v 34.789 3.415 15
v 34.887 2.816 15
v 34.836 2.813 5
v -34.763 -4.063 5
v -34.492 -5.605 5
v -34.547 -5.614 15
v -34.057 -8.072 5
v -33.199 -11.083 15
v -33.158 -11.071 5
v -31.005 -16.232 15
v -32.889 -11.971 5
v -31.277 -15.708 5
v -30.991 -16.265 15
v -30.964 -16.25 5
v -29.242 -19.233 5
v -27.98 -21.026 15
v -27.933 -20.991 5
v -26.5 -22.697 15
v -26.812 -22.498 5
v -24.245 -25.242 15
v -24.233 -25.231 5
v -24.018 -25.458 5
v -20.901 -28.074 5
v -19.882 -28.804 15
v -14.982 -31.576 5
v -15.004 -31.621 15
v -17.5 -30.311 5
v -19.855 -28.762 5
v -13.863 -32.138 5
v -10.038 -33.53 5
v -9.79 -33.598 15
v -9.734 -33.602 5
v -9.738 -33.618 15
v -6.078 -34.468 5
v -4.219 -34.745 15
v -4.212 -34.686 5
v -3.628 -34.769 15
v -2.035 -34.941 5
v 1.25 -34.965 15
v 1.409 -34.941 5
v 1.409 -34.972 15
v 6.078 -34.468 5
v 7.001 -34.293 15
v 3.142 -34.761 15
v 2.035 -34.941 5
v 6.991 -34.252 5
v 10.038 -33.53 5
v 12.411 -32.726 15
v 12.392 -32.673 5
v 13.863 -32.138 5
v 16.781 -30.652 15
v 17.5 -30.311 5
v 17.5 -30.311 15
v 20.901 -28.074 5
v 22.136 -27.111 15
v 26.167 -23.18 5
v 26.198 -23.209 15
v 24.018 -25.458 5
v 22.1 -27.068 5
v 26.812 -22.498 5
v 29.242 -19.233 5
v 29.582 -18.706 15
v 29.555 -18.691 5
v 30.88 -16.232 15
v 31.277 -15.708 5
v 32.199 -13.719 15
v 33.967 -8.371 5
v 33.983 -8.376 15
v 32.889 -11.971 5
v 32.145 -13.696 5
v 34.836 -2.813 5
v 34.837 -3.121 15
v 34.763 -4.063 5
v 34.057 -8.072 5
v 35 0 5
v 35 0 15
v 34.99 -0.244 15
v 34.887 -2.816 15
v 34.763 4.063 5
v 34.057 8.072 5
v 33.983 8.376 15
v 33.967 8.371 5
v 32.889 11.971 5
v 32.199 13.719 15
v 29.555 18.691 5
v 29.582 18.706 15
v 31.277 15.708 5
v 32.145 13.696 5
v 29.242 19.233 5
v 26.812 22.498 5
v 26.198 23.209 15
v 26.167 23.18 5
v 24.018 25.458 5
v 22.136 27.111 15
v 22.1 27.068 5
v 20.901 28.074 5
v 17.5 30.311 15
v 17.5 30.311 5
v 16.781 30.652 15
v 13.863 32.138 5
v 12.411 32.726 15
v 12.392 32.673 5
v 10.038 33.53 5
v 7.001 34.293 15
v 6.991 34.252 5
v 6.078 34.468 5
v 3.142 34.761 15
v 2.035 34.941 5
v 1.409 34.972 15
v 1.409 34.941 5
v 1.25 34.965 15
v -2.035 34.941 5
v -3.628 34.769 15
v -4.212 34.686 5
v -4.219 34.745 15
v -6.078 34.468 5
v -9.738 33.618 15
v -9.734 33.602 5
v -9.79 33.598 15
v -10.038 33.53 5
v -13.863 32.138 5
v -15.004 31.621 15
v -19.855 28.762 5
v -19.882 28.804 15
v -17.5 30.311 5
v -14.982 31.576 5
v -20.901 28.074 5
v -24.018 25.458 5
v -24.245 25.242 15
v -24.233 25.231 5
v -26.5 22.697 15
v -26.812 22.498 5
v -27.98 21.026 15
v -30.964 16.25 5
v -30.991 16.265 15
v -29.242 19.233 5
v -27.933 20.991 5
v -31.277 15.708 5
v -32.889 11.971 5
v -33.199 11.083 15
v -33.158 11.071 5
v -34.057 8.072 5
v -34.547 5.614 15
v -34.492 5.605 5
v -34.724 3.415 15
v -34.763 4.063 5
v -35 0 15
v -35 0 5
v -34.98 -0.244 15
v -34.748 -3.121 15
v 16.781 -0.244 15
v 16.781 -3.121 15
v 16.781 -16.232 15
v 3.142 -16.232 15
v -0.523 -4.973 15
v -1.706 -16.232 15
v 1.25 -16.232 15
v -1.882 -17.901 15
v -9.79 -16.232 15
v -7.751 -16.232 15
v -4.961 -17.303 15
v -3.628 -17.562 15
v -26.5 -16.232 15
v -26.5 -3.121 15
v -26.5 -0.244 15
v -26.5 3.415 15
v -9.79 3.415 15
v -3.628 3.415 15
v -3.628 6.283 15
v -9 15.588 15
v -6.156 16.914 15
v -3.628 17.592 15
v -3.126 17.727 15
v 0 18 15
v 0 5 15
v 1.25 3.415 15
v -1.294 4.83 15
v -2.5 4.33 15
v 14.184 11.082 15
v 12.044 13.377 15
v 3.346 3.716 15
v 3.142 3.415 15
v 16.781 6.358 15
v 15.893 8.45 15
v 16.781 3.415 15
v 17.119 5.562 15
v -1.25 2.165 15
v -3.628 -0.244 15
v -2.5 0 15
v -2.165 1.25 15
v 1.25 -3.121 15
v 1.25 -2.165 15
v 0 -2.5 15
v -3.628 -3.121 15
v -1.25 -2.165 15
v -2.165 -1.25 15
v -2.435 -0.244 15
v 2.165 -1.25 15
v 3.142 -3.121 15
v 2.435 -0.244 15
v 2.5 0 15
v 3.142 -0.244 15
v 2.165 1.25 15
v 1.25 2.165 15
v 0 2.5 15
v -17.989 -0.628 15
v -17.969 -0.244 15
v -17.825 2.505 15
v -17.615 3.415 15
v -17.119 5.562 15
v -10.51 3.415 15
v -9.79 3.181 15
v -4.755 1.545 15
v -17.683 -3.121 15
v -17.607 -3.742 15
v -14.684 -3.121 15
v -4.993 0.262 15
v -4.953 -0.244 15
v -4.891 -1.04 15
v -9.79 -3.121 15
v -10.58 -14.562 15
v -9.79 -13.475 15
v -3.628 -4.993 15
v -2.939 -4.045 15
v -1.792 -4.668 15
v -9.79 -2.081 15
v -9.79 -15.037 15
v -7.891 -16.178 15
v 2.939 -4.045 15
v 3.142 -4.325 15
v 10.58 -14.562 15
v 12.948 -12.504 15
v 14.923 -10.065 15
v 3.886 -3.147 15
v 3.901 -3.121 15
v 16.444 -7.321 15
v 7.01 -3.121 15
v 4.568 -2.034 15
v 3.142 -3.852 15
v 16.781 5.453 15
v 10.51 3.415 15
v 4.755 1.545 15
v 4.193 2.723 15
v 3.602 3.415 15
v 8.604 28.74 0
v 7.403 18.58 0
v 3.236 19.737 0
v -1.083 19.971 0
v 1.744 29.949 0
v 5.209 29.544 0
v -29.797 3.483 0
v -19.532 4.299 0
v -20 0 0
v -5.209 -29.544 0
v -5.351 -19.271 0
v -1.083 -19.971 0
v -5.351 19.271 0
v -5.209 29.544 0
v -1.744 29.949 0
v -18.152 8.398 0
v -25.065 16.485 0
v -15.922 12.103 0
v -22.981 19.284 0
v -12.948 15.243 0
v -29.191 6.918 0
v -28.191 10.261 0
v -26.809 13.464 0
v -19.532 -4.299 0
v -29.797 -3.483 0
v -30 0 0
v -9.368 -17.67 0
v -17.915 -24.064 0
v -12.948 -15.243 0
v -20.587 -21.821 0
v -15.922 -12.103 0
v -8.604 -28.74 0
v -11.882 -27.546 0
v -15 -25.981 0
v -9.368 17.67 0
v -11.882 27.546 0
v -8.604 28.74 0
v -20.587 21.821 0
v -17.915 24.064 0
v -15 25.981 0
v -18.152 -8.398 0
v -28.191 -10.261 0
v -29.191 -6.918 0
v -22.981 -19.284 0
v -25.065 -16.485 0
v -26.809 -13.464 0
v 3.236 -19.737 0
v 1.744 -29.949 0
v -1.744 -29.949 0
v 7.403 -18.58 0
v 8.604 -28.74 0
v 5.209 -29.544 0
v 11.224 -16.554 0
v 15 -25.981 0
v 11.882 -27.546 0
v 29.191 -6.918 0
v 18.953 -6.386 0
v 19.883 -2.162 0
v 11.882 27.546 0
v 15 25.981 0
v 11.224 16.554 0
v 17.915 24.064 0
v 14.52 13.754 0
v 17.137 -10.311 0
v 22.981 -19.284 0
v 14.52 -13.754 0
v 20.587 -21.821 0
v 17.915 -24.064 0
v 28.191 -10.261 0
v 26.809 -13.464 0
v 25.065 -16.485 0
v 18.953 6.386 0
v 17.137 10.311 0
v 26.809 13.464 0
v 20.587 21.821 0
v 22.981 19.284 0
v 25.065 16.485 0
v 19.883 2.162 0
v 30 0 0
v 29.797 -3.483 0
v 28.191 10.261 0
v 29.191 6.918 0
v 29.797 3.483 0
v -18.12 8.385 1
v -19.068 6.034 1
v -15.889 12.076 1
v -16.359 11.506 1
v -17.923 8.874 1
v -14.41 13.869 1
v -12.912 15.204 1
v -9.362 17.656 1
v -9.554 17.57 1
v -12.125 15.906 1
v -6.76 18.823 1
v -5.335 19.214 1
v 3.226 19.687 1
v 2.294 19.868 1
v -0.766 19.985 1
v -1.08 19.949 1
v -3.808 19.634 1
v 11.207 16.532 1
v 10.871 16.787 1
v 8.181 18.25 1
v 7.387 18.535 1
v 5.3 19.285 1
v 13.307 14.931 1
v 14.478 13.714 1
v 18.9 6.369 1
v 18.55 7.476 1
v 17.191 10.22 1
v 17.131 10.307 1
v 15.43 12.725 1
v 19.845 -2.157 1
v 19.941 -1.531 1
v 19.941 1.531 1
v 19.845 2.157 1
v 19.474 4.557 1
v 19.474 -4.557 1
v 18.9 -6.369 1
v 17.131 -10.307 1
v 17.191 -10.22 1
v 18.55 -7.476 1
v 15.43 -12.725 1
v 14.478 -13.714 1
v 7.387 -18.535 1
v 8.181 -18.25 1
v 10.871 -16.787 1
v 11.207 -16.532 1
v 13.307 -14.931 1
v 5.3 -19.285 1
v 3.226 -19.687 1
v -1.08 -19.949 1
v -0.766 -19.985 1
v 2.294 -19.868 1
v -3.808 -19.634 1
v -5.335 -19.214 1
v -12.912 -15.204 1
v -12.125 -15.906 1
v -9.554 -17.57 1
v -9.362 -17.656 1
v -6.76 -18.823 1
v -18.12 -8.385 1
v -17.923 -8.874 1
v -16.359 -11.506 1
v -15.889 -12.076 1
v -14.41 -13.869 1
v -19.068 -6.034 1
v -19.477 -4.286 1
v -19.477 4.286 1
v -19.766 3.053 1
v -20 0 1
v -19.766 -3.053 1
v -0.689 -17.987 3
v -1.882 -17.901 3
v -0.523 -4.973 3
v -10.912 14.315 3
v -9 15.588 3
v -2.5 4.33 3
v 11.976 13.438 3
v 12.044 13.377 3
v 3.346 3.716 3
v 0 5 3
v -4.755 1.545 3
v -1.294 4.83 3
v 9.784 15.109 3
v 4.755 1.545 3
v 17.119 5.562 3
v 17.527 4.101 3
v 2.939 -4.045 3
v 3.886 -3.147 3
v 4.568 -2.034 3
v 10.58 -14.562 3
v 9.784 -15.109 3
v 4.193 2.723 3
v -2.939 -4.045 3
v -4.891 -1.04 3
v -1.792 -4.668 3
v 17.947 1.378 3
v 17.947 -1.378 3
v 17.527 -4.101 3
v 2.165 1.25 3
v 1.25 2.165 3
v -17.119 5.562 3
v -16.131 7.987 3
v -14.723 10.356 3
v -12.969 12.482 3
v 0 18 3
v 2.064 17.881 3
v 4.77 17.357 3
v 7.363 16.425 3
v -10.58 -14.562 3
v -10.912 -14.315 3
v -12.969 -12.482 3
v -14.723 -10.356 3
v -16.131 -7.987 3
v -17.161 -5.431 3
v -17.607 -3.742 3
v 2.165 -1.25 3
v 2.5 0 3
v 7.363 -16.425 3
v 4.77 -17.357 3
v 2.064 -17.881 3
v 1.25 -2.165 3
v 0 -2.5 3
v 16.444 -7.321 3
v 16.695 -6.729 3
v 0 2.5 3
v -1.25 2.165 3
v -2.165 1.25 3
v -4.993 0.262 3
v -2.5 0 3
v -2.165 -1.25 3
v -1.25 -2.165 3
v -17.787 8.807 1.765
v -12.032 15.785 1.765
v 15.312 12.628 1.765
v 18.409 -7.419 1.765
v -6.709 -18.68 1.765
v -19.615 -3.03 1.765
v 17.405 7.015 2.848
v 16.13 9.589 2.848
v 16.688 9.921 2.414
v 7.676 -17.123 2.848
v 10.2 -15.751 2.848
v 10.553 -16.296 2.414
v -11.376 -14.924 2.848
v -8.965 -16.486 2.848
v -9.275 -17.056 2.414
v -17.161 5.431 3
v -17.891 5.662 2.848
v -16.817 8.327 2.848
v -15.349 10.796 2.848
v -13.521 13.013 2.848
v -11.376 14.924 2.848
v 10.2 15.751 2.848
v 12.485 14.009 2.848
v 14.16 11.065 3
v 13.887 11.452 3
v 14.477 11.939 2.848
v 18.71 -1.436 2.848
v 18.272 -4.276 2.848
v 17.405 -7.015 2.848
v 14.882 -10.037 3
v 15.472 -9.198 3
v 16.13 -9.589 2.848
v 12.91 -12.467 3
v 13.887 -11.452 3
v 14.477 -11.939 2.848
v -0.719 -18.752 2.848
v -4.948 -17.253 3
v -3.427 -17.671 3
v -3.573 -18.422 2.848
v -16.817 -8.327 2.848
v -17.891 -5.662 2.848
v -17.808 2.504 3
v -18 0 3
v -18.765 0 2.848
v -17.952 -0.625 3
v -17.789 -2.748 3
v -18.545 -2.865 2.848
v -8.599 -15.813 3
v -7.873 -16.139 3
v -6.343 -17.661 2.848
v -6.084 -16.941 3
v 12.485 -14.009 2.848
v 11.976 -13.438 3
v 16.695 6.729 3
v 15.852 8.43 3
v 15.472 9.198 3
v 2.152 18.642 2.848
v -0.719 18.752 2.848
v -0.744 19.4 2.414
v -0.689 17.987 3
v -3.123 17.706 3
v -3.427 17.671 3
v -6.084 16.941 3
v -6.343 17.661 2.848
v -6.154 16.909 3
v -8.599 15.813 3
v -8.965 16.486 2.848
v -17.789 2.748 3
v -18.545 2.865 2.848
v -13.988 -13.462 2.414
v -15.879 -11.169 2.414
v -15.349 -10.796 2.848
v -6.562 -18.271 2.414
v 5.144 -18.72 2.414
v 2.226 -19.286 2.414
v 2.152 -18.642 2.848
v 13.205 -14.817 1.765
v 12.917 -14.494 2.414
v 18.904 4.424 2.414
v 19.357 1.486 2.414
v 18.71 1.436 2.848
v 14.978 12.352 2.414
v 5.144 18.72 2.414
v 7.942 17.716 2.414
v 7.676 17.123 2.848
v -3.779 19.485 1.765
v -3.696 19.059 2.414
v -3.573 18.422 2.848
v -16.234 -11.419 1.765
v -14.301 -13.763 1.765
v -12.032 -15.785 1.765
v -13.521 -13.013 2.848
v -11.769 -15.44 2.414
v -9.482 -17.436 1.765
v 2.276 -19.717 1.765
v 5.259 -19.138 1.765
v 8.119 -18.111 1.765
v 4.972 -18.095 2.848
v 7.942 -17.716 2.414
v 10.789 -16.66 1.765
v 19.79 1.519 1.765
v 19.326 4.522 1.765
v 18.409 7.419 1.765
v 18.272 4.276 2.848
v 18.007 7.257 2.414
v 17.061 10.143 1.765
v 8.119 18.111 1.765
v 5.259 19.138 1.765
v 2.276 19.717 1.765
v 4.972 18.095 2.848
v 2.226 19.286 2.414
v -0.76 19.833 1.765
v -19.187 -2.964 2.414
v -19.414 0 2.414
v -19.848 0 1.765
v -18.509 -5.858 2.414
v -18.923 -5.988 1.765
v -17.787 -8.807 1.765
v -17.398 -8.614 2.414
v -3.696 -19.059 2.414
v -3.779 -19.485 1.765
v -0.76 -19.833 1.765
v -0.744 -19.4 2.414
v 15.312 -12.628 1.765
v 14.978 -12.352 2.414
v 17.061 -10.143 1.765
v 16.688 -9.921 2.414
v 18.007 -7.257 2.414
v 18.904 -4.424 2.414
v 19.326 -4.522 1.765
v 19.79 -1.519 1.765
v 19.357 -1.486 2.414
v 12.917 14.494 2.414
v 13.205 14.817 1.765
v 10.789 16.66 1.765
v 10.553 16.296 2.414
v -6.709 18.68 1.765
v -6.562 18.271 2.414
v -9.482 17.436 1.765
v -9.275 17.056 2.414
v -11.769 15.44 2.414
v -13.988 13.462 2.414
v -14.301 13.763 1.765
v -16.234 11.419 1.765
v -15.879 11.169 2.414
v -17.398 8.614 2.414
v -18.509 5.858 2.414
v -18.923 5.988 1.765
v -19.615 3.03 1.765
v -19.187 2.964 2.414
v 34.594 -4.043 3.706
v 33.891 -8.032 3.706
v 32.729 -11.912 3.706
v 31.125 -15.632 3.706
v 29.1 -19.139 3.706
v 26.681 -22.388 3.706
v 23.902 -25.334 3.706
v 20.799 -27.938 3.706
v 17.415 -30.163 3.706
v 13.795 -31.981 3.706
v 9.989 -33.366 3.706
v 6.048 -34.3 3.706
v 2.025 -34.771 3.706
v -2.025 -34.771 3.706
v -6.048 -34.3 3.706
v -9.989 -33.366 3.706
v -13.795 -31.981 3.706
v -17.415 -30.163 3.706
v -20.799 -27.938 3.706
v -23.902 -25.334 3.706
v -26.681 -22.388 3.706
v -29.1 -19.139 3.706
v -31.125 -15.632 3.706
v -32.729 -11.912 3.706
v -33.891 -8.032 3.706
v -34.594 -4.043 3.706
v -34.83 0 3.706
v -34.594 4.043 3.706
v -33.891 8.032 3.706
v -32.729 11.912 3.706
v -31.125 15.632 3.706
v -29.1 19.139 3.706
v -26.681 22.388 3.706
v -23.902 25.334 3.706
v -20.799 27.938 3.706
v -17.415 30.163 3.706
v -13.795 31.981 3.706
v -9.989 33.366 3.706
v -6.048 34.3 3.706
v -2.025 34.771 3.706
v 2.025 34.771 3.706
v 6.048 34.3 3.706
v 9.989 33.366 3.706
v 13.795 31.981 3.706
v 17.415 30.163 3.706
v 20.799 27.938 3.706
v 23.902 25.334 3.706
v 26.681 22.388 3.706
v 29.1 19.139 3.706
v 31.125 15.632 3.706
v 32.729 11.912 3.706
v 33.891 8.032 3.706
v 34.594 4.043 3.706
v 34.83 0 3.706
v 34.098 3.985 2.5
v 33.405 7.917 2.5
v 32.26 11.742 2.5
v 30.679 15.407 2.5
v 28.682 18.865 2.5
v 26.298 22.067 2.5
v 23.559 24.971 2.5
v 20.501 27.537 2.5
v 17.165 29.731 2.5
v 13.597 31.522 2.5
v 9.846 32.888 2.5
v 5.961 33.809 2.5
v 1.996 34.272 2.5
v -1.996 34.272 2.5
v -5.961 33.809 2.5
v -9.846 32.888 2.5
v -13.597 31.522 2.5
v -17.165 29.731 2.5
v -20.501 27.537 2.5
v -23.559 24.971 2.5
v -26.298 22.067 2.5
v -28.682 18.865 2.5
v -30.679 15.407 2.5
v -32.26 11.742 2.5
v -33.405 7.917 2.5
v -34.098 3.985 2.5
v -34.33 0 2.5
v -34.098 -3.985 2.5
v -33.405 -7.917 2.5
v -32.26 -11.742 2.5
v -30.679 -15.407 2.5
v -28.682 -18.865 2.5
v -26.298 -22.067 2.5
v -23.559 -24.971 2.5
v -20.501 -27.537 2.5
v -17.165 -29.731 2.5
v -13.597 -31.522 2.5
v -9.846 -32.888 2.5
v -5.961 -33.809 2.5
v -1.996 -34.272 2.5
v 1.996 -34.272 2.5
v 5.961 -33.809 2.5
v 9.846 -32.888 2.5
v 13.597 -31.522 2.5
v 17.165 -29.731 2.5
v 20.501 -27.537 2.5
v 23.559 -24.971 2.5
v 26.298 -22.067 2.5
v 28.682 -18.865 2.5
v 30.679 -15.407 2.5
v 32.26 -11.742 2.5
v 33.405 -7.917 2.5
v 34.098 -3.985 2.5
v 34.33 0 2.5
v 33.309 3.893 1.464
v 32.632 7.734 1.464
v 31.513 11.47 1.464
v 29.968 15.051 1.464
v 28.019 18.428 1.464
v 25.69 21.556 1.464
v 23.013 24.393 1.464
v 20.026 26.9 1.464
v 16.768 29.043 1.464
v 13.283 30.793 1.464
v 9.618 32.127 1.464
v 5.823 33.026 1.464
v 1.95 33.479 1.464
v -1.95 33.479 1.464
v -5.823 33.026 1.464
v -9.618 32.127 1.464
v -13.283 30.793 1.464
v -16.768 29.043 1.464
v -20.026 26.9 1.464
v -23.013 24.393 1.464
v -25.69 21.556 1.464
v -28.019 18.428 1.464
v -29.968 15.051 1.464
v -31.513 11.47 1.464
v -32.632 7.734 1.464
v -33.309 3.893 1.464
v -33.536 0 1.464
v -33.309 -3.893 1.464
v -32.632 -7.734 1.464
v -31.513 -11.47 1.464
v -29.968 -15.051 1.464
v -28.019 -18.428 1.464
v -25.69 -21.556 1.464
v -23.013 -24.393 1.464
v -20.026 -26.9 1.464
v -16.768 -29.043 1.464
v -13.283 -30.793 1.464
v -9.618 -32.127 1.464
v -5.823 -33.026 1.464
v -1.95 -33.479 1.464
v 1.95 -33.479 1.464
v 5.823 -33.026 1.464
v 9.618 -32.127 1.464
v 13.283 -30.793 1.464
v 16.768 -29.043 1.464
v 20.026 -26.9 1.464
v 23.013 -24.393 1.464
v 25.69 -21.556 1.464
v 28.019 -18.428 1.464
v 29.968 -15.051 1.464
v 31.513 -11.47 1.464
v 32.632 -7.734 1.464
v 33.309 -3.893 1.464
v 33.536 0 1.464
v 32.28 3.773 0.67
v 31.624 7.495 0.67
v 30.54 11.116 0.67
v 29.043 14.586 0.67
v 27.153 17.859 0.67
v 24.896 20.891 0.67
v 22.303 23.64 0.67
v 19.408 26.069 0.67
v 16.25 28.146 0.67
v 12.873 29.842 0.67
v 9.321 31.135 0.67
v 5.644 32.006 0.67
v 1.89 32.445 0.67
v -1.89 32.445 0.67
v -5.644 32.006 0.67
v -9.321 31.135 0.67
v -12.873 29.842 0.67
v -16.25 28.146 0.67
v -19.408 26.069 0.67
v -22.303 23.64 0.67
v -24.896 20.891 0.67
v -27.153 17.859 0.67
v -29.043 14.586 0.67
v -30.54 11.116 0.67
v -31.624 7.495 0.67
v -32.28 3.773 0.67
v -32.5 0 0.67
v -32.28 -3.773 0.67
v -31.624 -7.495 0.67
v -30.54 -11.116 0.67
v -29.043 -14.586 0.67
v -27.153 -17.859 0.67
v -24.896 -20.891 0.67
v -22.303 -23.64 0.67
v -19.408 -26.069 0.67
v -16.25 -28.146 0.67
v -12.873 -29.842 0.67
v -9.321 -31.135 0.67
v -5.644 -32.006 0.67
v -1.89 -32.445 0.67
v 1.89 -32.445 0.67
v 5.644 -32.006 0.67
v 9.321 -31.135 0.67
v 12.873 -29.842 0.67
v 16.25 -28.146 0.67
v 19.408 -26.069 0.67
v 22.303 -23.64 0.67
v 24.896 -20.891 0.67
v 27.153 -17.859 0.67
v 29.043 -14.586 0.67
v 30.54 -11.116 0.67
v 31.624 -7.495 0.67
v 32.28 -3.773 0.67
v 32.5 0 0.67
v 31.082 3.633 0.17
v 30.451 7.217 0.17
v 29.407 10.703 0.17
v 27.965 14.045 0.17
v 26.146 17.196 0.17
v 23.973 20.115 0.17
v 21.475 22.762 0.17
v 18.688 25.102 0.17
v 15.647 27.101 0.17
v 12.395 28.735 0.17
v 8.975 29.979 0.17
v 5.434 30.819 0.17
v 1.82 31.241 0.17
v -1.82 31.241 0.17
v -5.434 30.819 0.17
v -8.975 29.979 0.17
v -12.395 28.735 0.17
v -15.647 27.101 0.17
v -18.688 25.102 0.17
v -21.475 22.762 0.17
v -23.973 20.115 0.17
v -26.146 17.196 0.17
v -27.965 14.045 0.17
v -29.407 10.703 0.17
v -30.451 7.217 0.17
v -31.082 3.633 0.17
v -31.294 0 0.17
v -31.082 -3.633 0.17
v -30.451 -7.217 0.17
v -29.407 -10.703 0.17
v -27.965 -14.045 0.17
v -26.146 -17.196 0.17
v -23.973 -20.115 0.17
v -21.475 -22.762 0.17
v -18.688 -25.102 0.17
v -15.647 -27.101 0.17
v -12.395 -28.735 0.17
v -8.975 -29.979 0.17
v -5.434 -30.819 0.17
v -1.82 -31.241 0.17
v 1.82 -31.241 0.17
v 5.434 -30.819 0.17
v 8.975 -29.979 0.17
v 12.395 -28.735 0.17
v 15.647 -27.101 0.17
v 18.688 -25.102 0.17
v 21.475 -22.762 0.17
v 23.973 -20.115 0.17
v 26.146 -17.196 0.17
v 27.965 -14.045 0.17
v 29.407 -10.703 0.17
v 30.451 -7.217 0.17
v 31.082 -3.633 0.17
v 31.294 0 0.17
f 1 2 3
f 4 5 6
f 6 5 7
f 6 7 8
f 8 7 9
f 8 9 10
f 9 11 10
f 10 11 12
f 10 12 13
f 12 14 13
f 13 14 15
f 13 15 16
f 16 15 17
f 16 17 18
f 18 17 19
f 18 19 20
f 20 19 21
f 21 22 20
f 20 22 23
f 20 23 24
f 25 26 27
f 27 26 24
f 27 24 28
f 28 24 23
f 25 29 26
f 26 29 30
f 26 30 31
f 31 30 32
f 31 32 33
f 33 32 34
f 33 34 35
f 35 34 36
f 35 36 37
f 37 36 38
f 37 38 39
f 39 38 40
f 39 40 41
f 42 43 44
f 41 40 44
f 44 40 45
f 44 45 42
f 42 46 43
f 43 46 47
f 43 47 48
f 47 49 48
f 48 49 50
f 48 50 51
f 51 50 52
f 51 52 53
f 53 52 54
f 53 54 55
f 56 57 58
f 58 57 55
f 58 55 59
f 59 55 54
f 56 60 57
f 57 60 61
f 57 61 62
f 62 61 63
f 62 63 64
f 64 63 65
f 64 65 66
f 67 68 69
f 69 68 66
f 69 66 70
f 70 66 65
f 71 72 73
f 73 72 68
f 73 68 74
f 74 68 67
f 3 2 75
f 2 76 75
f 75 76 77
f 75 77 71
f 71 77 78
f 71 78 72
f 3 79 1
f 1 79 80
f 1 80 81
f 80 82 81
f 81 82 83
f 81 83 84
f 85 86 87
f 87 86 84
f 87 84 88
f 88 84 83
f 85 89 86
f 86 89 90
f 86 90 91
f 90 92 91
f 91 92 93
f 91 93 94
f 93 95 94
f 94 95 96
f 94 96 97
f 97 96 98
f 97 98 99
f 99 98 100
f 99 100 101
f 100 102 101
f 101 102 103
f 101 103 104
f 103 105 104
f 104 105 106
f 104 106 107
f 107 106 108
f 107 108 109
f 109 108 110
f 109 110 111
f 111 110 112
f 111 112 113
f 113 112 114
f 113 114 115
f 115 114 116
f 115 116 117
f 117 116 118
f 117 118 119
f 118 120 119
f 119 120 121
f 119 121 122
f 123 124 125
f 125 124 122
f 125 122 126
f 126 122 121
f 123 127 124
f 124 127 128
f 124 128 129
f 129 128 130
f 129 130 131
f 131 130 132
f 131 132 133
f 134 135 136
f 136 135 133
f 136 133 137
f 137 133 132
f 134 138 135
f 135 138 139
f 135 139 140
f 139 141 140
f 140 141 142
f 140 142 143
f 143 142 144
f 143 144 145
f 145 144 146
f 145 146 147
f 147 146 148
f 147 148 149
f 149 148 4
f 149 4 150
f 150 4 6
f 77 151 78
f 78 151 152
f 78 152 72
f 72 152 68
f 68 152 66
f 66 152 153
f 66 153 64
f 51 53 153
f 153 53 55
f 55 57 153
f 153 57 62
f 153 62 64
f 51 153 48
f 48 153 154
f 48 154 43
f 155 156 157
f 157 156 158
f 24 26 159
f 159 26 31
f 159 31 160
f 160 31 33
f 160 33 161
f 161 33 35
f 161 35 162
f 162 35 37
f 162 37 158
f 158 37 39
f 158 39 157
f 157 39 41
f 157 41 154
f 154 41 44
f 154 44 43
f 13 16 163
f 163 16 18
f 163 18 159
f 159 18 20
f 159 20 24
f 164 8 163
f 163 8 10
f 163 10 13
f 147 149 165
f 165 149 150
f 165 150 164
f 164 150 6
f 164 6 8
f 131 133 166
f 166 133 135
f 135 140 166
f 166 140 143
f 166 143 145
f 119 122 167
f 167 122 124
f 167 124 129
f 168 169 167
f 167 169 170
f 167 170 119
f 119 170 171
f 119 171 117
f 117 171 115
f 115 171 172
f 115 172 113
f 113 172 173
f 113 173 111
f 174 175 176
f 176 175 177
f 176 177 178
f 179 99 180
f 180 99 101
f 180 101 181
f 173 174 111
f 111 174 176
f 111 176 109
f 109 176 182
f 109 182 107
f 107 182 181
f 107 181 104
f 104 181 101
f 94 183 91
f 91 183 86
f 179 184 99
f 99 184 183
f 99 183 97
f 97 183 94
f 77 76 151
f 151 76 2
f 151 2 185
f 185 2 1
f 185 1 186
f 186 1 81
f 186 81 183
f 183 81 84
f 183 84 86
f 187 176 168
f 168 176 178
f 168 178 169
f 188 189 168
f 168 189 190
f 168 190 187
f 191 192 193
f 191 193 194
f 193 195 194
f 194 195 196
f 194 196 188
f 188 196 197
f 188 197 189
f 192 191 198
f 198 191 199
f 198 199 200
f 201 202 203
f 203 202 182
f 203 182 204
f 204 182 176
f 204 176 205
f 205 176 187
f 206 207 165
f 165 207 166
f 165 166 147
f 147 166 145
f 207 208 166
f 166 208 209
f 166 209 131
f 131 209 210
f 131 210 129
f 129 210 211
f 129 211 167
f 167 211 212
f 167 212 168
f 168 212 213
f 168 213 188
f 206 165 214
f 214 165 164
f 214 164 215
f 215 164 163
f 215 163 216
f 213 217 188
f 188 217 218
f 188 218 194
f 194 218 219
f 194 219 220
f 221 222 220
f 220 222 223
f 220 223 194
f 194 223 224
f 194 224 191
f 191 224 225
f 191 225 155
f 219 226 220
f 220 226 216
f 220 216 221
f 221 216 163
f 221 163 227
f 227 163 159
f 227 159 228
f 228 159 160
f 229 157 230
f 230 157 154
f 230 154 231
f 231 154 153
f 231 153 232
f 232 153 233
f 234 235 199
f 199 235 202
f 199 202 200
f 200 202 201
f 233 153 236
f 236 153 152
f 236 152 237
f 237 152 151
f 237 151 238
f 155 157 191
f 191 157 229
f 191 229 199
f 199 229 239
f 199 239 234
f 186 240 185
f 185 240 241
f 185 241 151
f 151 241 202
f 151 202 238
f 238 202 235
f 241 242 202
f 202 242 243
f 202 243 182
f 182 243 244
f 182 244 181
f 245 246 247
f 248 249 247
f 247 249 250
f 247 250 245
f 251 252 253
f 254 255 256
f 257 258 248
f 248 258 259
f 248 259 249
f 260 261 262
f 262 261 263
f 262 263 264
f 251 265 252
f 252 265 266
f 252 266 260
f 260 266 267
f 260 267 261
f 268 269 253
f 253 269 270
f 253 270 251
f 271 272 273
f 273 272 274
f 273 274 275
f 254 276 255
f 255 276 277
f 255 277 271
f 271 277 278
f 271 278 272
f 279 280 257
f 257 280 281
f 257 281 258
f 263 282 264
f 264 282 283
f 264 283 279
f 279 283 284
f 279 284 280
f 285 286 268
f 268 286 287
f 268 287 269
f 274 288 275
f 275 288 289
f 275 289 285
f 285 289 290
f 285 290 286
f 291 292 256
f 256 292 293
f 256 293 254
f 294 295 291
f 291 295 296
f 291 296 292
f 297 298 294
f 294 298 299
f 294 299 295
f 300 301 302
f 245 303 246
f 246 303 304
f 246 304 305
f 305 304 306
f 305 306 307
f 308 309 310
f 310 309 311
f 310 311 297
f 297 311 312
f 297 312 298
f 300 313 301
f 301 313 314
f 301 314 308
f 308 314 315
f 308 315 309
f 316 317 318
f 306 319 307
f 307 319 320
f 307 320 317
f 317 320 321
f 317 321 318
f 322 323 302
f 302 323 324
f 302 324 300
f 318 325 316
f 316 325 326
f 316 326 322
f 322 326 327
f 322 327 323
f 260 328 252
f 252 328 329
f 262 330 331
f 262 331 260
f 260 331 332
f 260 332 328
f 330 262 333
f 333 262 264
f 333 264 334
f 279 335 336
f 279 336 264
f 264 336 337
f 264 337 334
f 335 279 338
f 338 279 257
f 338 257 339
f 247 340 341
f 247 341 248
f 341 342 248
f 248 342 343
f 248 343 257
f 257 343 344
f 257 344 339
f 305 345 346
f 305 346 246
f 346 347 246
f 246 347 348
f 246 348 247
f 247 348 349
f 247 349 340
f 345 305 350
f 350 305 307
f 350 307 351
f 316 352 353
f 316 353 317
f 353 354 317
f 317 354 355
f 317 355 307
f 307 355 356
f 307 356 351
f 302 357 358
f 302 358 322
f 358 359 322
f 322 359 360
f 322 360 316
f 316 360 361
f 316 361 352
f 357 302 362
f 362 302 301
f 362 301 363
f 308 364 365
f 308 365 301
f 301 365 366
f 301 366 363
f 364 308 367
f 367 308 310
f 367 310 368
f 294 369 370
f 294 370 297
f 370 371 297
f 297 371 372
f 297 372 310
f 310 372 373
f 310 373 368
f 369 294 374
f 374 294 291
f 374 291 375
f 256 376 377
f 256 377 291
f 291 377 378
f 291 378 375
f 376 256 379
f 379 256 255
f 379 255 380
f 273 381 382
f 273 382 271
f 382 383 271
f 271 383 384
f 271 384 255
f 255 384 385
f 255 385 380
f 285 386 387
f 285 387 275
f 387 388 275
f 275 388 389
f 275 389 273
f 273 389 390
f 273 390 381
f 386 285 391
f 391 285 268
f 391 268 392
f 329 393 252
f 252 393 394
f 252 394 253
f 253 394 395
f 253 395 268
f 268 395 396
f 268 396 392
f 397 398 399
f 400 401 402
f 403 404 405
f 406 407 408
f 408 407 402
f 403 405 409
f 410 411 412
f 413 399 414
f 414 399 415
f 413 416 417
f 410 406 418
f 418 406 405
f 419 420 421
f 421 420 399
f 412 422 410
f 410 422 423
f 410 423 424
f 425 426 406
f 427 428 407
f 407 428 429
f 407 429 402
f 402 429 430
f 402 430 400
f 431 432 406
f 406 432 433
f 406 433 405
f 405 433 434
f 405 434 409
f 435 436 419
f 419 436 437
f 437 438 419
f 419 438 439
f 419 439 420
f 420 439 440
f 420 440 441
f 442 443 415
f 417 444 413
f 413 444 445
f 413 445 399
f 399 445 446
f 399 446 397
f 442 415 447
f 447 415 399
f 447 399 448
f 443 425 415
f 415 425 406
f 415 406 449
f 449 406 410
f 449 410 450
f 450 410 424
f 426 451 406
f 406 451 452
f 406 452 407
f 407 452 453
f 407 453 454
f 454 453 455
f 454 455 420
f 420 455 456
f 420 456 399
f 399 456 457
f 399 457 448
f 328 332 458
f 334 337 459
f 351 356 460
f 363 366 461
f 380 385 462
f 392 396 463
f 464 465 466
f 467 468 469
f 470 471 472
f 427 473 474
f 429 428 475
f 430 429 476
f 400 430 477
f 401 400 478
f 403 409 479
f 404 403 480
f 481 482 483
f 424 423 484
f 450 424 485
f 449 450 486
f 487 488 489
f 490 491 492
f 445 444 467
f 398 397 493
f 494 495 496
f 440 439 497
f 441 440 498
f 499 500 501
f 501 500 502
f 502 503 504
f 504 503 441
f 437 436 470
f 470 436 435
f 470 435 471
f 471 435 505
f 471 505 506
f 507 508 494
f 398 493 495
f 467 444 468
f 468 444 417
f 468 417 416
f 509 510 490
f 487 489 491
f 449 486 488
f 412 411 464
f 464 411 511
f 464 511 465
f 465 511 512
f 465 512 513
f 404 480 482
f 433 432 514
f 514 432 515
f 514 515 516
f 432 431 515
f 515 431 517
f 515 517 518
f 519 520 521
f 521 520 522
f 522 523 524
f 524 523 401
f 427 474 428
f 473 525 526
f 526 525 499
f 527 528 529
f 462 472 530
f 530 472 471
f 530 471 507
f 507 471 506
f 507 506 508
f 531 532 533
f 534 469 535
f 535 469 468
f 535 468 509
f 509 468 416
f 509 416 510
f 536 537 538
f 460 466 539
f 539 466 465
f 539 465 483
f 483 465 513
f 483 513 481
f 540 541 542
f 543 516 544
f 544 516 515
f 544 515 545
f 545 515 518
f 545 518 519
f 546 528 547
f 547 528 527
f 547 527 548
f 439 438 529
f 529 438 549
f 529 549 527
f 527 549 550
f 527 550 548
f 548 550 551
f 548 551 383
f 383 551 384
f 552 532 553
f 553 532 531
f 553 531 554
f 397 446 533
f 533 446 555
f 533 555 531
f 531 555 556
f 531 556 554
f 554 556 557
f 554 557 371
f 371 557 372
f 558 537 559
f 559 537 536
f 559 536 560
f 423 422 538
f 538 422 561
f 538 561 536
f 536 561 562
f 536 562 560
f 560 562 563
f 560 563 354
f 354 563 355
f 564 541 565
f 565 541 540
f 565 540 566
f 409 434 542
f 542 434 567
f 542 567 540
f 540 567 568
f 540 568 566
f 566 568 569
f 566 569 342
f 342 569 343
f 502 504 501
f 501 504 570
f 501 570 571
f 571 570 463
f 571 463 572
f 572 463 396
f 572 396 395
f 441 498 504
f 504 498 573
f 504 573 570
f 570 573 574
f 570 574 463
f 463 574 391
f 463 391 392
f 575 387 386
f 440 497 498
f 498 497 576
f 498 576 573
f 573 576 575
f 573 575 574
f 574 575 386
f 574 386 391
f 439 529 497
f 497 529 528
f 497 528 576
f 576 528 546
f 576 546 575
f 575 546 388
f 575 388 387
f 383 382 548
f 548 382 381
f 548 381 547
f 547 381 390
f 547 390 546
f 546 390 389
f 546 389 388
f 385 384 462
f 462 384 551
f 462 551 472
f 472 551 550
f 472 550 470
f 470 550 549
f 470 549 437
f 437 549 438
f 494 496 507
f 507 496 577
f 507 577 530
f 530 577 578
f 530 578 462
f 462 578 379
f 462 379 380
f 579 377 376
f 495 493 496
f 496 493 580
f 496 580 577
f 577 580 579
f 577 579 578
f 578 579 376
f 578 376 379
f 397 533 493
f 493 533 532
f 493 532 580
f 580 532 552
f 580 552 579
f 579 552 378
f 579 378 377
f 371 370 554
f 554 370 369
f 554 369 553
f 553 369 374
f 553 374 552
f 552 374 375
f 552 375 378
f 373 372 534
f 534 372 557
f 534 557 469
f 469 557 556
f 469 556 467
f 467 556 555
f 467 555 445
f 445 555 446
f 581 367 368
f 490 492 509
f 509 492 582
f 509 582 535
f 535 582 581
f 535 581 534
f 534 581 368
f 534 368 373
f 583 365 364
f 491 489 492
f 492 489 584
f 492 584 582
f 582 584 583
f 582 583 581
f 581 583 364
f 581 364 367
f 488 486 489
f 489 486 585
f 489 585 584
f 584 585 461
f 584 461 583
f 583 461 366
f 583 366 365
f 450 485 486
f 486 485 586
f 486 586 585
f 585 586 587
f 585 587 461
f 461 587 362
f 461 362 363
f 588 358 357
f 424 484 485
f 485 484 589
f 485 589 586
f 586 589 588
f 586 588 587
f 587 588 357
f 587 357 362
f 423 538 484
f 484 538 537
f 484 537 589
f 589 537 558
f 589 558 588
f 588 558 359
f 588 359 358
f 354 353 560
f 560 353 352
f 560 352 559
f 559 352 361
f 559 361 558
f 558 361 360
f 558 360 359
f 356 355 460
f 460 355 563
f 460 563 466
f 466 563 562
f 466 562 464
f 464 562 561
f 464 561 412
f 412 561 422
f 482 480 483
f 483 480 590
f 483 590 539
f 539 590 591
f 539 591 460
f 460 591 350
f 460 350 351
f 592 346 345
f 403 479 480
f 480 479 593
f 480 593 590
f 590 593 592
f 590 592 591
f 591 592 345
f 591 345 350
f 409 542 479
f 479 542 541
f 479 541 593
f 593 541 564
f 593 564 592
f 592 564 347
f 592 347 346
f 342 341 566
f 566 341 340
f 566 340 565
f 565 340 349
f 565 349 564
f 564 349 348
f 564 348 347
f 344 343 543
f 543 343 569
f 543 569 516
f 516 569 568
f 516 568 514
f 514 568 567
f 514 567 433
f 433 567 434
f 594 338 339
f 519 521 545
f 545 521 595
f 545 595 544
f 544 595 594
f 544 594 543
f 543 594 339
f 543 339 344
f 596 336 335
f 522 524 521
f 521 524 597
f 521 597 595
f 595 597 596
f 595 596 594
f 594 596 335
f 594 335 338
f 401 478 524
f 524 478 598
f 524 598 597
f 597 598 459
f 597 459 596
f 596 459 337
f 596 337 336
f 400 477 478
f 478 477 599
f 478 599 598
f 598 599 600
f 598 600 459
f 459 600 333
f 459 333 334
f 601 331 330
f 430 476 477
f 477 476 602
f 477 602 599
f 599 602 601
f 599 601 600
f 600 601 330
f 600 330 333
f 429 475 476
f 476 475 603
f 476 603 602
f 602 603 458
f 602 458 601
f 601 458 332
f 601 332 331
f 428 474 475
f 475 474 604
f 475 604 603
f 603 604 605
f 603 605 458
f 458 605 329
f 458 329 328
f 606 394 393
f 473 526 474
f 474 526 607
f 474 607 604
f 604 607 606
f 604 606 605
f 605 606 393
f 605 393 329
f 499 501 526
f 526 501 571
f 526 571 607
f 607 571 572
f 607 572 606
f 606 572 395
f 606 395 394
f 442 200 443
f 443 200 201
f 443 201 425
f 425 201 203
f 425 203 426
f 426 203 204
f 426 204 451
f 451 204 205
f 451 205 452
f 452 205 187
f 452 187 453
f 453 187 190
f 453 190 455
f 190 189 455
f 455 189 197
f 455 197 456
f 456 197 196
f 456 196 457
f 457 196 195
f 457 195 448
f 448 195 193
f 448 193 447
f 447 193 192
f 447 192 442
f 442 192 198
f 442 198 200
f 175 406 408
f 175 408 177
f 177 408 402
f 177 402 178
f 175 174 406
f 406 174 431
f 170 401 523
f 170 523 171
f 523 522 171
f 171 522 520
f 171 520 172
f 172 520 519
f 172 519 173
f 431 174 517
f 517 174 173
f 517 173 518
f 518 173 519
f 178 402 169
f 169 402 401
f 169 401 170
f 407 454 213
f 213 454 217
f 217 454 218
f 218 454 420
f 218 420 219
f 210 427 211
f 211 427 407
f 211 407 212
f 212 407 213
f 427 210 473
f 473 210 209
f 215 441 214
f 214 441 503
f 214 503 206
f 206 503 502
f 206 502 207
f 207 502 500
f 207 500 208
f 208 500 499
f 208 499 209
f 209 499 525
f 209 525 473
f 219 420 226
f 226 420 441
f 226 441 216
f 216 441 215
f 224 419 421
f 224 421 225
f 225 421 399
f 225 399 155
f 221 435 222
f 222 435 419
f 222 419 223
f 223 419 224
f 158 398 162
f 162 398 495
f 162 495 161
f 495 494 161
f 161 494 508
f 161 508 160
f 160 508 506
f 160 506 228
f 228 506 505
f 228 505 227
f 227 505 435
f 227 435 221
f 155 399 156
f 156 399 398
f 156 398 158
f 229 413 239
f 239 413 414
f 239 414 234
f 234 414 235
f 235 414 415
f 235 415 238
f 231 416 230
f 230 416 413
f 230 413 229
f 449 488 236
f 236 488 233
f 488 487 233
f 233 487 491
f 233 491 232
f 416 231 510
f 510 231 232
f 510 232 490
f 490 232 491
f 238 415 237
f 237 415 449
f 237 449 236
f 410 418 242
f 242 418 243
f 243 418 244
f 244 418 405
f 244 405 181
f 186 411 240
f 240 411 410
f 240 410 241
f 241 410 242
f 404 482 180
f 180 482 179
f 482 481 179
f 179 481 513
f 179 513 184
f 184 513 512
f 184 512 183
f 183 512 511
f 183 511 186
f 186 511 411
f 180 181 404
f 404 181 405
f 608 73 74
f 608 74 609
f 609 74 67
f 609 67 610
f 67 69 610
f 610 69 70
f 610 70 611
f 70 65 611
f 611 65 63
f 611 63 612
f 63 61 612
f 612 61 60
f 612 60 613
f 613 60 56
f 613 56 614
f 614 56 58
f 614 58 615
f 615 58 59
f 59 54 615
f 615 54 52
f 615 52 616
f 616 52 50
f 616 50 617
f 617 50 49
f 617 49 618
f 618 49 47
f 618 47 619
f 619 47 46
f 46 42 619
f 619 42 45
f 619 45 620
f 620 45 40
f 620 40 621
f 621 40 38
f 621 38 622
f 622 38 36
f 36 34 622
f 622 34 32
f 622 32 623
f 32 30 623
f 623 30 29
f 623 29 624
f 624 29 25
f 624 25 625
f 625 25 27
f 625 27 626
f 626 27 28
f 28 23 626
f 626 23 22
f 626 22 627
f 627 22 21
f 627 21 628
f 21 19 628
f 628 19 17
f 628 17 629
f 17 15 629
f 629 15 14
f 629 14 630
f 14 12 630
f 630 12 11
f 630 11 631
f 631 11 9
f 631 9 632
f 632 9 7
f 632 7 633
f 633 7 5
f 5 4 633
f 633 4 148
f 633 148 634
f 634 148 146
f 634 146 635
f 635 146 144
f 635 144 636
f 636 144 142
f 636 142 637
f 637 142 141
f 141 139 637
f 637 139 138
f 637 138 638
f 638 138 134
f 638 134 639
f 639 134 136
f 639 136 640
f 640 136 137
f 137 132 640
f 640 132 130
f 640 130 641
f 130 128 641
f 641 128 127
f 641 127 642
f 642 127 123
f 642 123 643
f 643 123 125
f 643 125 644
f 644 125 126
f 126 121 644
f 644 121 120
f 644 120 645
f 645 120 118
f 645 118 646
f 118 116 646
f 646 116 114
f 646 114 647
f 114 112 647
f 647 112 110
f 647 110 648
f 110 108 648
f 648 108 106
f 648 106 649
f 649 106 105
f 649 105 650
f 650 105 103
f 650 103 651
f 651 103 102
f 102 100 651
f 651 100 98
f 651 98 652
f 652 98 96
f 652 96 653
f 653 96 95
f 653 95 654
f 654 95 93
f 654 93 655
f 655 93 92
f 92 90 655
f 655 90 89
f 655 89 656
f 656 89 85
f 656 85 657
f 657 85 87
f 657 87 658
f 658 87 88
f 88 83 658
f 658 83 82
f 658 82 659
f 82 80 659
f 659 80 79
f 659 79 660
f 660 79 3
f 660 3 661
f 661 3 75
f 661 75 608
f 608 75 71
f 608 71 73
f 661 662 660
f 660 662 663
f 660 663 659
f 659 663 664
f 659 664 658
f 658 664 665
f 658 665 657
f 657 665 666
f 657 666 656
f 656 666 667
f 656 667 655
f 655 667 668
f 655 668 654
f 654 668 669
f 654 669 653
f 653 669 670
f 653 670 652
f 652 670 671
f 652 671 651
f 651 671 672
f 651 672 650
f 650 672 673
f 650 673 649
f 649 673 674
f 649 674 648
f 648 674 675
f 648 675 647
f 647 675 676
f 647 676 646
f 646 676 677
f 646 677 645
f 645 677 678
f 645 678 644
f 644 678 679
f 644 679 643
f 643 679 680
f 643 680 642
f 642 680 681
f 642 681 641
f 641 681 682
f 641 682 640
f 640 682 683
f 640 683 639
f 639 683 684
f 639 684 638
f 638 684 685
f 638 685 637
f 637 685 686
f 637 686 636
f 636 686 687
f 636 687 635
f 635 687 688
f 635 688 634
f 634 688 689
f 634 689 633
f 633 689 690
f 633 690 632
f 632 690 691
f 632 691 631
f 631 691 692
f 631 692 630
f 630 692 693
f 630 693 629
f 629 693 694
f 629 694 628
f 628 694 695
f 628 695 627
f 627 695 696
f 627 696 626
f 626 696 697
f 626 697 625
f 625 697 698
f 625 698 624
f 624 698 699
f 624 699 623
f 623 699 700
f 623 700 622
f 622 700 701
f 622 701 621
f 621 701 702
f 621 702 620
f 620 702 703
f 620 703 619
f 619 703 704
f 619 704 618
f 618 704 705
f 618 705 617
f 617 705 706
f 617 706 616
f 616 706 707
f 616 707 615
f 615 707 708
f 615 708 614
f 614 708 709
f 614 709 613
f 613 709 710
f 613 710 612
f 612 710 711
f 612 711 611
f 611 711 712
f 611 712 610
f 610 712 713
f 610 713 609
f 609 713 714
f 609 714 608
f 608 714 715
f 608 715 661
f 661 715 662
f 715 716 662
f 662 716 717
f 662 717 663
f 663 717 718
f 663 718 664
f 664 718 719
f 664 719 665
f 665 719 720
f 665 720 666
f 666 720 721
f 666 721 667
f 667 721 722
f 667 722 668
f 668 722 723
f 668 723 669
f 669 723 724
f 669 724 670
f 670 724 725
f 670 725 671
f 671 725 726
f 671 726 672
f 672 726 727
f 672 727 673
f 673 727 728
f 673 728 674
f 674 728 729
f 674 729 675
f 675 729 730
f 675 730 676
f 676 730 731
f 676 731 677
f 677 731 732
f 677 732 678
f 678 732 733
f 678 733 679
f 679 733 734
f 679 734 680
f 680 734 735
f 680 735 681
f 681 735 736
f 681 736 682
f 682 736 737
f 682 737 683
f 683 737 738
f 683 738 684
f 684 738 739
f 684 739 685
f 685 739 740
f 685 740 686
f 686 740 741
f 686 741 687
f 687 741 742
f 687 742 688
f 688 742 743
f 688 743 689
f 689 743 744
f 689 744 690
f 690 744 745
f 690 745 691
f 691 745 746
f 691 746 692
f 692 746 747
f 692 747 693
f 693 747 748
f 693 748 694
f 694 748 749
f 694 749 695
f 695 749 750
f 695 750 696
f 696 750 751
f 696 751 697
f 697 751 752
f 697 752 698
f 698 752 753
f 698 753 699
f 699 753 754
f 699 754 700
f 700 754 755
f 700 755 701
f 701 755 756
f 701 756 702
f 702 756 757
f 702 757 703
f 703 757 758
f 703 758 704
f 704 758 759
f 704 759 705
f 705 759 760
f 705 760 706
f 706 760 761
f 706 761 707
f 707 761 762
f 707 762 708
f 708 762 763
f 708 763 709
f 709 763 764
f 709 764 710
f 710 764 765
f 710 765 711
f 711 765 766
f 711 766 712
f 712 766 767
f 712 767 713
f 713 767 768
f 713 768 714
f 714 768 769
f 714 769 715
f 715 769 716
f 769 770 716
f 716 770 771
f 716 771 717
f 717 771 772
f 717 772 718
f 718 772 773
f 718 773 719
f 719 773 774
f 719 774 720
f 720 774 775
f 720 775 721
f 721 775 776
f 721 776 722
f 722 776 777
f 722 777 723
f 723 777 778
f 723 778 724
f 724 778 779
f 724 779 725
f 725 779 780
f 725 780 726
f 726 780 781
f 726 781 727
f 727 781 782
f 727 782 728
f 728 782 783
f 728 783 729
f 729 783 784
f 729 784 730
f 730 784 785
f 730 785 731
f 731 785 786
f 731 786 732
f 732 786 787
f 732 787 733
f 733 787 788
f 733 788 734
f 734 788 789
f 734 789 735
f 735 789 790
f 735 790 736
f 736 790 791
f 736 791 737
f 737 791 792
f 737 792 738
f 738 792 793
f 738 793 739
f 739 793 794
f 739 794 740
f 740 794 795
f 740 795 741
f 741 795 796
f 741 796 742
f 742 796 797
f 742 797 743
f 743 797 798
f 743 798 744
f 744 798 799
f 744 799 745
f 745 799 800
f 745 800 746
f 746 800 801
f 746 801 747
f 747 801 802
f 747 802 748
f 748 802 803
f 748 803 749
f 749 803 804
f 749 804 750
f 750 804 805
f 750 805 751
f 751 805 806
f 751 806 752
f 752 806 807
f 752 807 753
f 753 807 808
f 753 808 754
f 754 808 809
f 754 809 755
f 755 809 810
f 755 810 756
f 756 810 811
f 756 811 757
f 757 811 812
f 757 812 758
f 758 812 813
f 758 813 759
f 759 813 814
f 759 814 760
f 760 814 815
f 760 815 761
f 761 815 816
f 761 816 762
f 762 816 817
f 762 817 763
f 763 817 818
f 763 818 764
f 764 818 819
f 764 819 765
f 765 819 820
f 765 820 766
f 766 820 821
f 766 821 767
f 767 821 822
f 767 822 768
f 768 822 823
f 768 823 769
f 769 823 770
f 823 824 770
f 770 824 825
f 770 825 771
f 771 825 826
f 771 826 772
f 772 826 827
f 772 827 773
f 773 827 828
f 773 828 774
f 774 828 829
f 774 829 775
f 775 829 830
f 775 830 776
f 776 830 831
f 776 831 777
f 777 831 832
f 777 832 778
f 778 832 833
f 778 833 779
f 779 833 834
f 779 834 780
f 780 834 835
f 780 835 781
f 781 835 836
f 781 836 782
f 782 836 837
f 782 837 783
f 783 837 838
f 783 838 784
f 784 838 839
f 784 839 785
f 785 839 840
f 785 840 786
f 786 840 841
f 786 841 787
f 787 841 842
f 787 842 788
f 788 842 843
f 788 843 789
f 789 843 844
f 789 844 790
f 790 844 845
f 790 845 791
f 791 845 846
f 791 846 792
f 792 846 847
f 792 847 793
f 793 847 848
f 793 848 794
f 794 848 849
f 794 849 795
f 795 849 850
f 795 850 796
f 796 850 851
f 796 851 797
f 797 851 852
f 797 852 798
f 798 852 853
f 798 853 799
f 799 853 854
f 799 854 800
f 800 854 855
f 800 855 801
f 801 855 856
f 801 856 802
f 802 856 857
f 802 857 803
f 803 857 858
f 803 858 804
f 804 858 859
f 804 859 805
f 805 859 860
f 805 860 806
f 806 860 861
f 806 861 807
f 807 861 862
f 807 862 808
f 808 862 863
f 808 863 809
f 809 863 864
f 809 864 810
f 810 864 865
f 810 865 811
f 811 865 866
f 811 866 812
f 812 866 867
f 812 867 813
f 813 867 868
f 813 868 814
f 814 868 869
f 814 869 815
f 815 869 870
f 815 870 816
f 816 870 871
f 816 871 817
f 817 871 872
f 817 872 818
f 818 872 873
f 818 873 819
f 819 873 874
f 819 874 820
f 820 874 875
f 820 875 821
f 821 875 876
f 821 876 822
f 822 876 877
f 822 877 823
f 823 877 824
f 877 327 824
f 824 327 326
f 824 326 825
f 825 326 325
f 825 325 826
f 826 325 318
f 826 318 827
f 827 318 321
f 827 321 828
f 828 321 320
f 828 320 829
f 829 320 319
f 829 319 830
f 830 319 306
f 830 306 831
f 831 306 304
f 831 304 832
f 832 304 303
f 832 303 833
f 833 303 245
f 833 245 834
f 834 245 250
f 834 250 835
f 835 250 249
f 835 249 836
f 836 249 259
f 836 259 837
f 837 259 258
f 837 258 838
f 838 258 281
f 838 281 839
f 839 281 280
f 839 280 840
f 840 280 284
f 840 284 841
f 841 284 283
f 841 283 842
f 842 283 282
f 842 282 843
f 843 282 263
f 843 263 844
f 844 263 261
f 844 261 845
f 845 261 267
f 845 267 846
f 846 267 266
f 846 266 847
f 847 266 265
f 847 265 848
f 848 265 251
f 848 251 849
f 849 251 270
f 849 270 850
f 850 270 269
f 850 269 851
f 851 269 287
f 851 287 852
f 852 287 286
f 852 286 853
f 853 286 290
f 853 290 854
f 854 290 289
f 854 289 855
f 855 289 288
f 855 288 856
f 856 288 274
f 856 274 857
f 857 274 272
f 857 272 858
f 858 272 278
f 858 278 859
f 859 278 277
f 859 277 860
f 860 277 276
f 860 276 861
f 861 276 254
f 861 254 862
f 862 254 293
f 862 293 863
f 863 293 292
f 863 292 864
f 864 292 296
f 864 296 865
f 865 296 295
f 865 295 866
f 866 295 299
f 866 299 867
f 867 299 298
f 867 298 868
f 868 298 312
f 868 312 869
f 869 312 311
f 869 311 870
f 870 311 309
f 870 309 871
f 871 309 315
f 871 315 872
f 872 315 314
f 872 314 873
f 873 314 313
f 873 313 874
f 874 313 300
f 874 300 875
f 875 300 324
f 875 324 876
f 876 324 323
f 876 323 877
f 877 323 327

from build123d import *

# Parameters (mm, degrees)
SKETCH1_R           = 35
BOSS_EXTRUDE1_DEPTH = 15
SKETCH2_R           = 20
CUT_EXTRUDE1_DEPTH  = 3
FILLET2_R           = 2
SKETCH4_R           = 2.5
CUT_EXTRUDE2_DEPTH  = 51.931326313
CUT_EXTRUDE3_DEPTH  = 51.931326313
FILLET3_R           = 5


with BuildPart() as part:
    # Sketch1 → Boss-Extrude1 (new body)
    with BuildSketch(Plane.XY):
        Circle(SKETCH1_R)
    extrude(amount=BOSS_EXTRUDE1_DEPTH)

    # Sketch2 → Cut-Extrude1 (cut)
    with BuildSketch(Plane(origin=(0, 0, 0), x_dir=(-1, 0, 0), z_dir=(0, 0, -1))):
        Circle(SKETCH2_R)
    extrude(amount=-CUT_EXTRUDE1_DEPTH, mode=Mode.SUBTRACT)

    # Fillet2
    fillet2_edges = [part.edges().sort_by_distance(p)[0] for p in [
        (20, 0, 3),
    ]]
    fillet(fillet2_edges, radius=FILLET2_R)

    # Sketch4 → Cut-Extrude2 (cut, through all)
    with BuildSketch(Plane(origin=(0, 0, 3), x_dir=(-1, 0, 0), z_dir=(0, 0, -1))):
        Circle(SKETCH4_R)
    extrude(amount=-CUT_EXTRUDE2_DEPTH, mode=Mode.SUBTRACT)

    # Sketch5 → Cut-Extrude3 (cut, through all)
    with BuildSketch(Plane(origin=(0, 0, 3), x_dir=(-1, 0, 0), z_dir=(0, 0, -1))):
        with BuildLine():
            Line((0, 5), (0, 18))
            ThreePointArc((0, 18), (4.658742812, 17.386664873), (9, 15.588457268))
            Line((9, 15.588457268), (2.5, 4.330127019))
            ThreePointArc((2.5, 4.330127019), (1.294095226, 4.829629131), (0, 5))
        make_face()
        with BuildLine():
            Line((4.890738004, -1.039558454), (17.606656813, -3.742410435))
            ThreePointArc((17.606656813, -3.742410435), (17.975331626, 0.942047212), (17.119017293, 5.562305899))
            Line((17.119017293, 5.562305899), (4.755282581, 1.545084972))
            ThreePointArc((4.755282581, 1.545084972), (4.993147674, 0.261679781), (4.890738004, -1.039558454))
        make_face()
        with BuildLine():
            Line((0.522642316, -4.972609477), (1.881512339, -17.901394117))
            ThreePointArc((1.881512339, -17.901394117), (6.450623092, -16.804447677), (10.580134541, -14.562305899))
            Line((10.580134541, -14.562305899), (2.938926261, -4.045084972))
            ThreePointArc((2.938926261, -4.045084972), (1.791839748, -4.667902132), (0.522642316, -4.972609477))
        make_face()
        with BuildLine():
            Line((-4.567727288, -2.033683215), (-16.443818238, -7.321259575))
            ThreePointArc((-16.443818238, -7.321259575), (-13.988627306, -11.327767039), (-10.580134541, -14.562305899))
            Line((-10.580134541, -14.562305899), (-2.938926261, -4.045084972))
            ThreePointArc((-2.938926261, -4.045084972), (-3.885729807, -3.146601955), (-4.567727288, -2.033683215))
        make_face()
        with BuildLine():
            Line((-3.345653032, 3.715724127), (-12.044350914, 13.376606859))
            ThreePointArc((-12.044350914, 13.376606859), (-15.096070223, 9.80350263), (-17.119017293, 5.562305899))
            Line((-17.119017293, 5.562305899), (-4.755282581, 1.545084972))
            ThreePointArc((-4.755282581, 1.545084972), (-4.19335284, 2.723195175), (-3.345653032, 3.715724127))
        make_face()
    extrude(amount=-CUT_EXTRUDE3_DEPTH, mode=Mode.SUBTRACT)

    # Fillet3
    fillet3_edges = [part.edges().sort_by_distance(p)[0] for p in [
        (-35, 0, 0),
    ]]
    fillet(fillet3_edges, radius=FILLET3_R)


solid = part.part
